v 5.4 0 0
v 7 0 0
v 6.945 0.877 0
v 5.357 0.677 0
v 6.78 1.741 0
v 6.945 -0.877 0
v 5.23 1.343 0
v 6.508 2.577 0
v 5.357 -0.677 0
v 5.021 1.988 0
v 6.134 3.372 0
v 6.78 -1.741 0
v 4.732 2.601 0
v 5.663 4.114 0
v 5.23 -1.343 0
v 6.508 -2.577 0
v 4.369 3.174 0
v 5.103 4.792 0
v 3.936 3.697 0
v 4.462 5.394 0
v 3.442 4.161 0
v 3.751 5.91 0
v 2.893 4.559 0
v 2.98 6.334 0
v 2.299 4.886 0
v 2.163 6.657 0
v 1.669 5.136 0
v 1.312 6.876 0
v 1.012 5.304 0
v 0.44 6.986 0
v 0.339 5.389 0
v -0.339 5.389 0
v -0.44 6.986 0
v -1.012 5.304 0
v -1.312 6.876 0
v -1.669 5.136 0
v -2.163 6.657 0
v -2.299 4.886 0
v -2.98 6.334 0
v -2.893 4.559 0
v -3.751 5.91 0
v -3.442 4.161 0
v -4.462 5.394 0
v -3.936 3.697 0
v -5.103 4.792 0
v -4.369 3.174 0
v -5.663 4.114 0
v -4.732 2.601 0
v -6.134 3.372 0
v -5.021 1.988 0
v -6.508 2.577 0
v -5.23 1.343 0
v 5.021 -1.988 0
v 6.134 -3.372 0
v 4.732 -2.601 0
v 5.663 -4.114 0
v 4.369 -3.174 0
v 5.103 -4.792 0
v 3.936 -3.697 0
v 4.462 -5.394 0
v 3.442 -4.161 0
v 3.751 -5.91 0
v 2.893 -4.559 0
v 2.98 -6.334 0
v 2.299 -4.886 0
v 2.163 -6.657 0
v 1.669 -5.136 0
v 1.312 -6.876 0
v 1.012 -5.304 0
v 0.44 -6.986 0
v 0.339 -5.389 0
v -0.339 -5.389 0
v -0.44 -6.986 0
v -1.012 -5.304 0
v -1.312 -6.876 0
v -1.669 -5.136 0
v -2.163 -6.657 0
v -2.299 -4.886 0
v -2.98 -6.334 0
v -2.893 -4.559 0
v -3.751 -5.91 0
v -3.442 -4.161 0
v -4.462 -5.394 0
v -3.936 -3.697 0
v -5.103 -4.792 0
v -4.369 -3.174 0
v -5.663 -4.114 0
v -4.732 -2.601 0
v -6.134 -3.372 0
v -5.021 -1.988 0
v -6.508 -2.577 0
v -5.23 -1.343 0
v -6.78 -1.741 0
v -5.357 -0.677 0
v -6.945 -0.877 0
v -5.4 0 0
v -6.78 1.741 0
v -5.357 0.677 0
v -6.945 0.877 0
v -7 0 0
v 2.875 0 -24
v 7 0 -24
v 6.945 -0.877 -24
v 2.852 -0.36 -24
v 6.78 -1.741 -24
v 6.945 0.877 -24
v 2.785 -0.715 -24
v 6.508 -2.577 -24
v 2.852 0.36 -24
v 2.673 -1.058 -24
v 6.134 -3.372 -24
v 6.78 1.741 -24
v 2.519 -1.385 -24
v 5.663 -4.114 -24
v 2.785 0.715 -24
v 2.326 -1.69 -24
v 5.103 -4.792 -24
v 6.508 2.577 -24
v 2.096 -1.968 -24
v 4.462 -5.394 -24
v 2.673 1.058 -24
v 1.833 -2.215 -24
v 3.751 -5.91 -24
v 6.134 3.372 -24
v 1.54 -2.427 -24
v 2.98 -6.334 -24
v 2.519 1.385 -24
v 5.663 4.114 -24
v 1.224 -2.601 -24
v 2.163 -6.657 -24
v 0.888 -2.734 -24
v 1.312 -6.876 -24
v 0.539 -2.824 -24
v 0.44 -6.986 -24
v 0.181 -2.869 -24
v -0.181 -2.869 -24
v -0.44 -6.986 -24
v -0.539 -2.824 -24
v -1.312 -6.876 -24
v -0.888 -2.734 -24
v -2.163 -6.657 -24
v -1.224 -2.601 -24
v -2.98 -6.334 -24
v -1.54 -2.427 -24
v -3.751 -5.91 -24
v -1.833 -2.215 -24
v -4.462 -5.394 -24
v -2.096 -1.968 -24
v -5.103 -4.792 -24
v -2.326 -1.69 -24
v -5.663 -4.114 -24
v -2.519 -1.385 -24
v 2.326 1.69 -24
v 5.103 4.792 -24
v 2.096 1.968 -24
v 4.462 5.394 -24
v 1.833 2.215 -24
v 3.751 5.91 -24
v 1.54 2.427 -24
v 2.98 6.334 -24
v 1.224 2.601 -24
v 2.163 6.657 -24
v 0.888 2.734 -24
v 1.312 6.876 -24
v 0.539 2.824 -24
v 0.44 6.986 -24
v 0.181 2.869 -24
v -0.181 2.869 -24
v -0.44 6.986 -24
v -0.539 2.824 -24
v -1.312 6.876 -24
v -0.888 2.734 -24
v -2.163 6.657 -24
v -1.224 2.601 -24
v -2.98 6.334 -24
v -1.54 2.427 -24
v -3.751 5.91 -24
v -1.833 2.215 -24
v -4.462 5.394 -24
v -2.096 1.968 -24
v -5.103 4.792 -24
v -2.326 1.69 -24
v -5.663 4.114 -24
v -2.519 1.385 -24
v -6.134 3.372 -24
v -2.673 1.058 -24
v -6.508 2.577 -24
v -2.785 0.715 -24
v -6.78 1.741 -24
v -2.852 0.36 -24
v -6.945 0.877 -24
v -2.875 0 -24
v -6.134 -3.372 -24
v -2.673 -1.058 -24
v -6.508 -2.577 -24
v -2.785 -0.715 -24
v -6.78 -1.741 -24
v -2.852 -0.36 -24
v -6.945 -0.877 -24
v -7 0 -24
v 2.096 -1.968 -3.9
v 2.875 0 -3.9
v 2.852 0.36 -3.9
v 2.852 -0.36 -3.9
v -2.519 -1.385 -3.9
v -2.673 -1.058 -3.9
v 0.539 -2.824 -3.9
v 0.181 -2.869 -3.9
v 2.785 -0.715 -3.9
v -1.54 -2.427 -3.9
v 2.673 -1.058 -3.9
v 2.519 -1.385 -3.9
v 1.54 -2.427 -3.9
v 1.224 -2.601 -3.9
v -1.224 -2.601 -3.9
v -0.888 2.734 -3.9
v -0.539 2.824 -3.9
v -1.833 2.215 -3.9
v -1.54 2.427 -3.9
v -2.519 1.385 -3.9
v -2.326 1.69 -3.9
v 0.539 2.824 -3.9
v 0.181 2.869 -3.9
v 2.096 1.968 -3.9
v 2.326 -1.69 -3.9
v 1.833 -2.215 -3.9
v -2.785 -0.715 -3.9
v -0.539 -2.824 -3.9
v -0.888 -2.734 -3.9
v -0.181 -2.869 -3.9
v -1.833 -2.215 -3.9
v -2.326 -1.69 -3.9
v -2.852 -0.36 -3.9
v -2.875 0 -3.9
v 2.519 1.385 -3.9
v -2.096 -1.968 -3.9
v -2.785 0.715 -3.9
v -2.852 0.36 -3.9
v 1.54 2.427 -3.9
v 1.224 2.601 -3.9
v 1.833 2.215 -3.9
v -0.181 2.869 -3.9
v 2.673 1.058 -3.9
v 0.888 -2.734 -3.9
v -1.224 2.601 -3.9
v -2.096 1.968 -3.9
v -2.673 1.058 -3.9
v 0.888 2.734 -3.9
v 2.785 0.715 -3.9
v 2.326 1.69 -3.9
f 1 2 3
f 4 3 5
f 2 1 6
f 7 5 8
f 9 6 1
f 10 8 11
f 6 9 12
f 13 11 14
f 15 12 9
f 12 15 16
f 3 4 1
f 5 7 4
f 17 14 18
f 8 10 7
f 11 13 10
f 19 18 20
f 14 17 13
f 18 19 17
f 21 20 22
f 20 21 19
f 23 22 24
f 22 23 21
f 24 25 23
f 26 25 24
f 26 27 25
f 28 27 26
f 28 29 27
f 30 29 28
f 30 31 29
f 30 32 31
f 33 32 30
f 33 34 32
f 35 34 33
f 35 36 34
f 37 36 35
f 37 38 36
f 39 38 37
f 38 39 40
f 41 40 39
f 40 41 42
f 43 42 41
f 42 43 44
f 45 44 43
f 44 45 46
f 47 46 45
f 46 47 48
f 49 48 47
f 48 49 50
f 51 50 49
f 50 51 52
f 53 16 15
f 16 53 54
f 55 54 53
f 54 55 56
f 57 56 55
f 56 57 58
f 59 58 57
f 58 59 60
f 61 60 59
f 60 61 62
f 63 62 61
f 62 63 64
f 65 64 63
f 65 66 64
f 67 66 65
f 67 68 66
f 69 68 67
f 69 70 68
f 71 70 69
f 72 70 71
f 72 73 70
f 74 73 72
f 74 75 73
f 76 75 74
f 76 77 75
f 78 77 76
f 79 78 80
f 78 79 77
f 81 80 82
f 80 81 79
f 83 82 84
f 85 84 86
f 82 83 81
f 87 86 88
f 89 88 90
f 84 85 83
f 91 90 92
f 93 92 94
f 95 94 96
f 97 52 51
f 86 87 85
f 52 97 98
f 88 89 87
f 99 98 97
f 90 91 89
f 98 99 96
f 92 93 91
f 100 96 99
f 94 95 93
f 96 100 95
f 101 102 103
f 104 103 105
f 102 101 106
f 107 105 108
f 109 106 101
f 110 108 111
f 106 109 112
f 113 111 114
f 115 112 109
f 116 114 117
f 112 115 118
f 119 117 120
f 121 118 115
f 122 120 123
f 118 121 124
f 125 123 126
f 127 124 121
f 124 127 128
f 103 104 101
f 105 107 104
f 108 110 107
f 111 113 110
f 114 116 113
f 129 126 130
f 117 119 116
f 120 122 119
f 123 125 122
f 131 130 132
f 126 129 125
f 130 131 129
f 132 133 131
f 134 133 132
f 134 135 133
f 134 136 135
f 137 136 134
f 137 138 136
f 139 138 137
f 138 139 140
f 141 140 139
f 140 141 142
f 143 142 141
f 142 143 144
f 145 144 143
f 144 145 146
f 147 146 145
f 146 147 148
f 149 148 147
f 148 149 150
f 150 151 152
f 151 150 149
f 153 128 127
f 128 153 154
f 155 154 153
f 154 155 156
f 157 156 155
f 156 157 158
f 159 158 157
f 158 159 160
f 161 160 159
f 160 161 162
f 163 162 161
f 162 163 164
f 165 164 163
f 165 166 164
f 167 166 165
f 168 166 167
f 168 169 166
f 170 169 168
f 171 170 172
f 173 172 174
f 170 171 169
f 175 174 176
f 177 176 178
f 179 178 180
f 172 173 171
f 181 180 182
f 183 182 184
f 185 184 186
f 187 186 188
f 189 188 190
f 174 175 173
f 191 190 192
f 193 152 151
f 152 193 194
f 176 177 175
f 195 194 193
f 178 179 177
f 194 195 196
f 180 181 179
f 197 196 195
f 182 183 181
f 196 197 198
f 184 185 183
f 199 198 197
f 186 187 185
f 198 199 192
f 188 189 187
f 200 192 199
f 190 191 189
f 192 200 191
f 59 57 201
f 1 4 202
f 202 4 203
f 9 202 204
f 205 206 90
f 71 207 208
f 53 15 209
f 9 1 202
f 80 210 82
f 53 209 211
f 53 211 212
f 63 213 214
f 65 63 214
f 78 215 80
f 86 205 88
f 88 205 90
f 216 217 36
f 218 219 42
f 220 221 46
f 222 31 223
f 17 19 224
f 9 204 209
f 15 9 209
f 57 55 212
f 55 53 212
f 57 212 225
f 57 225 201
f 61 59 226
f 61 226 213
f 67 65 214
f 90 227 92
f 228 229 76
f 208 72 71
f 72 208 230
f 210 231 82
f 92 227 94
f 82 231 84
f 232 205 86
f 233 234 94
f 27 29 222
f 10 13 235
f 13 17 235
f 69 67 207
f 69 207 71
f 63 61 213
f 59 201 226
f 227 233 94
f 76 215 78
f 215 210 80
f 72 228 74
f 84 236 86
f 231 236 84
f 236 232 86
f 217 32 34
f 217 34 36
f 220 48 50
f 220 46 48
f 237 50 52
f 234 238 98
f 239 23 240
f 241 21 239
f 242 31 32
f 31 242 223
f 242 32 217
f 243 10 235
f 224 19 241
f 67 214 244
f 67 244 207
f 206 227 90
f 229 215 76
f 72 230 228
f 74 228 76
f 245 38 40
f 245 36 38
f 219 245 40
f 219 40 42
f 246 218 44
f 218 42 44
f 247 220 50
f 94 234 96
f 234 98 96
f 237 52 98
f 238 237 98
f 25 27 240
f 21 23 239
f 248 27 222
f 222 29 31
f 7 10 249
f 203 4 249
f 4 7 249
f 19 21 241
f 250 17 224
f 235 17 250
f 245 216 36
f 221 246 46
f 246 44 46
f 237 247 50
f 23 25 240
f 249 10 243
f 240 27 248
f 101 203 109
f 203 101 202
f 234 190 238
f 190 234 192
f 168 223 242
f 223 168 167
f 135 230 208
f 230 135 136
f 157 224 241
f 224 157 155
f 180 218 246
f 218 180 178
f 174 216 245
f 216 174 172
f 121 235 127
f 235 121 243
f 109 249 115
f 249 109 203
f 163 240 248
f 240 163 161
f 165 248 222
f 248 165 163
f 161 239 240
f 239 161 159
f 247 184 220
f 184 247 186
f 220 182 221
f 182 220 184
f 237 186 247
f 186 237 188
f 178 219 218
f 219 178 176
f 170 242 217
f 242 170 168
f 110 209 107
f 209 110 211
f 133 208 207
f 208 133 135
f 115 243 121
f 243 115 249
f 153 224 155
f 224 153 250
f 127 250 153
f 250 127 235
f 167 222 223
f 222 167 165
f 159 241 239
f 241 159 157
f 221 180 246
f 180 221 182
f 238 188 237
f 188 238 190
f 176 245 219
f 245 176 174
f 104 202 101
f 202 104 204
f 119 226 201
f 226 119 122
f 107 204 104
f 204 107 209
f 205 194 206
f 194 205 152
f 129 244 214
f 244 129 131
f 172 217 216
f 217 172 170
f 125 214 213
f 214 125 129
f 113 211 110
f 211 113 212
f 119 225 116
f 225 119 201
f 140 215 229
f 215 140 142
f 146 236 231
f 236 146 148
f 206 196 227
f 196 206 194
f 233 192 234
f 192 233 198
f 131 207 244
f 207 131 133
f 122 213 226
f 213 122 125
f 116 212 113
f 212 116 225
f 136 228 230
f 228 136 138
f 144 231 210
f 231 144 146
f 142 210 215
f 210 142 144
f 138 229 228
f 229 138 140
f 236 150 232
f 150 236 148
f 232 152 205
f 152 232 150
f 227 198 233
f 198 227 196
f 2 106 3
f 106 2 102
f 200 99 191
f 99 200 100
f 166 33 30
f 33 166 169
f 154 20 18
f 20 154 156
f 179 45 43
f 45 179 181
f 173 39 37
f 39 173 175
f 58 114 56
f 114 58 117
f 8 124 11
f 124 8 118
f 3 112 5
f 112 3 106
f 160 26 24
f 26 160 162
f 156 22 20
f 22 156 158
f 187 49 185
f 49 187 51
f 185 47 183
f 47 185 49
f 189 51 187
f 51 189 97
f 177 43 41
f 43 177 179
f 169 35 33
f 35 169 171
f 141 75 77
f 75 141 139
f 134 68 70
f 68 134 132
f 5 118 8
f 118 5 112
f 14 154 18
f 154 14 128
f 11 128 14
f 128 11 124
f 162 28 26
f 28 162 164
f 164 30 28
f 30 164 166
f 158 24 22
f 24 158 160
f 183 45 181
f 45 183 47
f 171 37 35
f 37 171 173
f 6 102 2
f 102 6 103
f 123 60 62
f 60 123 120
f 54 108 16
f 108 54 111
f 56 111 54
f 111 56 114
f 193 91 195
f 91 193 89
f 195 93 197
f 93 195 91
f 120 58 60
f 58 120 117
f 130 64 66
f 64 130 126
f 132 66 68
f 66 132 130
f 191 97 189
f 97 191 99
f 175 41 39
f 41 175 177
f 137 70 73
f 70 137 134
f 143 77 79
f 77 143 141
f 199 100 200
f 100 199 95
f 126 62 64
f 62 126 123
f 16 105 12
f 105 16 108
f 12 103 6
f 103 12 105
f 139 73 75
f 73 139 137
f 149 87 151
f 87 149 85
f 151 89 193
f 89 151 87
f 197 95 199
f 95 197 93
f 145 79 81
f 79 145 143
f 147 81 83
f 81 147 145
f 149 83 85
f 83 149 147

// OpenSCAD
$fn = 50;


difference() {
	union() {
		translate(v = [0, 0, -24.0000000000]) {
			cylinder(h = 24, r = 7.0000000000);
		}
		cylinder(h = 0, r = 17.0000000000);
	}
	union() {
		translate(v = [0, 0, 0]) {
			rotate(a = [0, 0, 0]) {
				difference() {
					union() {
						#translate(v = [0, 0, -24.0000000000]) {
							cylinder(h = 24, r = 2.6000000000);
						}
						#translate(v = [0, 0, -3.9000000000]) {
							cylinder(h = 3.9000000000, r = 7.0000000000, r1 = 2.8750000000, r2 = 5.4000000000);
						}
						#translate(v = [0, 0, -24.0000000000]) {
							cylinder(h = 24, r = 2.8750000000);
						}
						#translate(v = [0, 0, -24.0000000000]) {
							cylinder(h = 24, r = 2.6000000000);
						}
					}
					union();
				}
			}
		}
	}
}
